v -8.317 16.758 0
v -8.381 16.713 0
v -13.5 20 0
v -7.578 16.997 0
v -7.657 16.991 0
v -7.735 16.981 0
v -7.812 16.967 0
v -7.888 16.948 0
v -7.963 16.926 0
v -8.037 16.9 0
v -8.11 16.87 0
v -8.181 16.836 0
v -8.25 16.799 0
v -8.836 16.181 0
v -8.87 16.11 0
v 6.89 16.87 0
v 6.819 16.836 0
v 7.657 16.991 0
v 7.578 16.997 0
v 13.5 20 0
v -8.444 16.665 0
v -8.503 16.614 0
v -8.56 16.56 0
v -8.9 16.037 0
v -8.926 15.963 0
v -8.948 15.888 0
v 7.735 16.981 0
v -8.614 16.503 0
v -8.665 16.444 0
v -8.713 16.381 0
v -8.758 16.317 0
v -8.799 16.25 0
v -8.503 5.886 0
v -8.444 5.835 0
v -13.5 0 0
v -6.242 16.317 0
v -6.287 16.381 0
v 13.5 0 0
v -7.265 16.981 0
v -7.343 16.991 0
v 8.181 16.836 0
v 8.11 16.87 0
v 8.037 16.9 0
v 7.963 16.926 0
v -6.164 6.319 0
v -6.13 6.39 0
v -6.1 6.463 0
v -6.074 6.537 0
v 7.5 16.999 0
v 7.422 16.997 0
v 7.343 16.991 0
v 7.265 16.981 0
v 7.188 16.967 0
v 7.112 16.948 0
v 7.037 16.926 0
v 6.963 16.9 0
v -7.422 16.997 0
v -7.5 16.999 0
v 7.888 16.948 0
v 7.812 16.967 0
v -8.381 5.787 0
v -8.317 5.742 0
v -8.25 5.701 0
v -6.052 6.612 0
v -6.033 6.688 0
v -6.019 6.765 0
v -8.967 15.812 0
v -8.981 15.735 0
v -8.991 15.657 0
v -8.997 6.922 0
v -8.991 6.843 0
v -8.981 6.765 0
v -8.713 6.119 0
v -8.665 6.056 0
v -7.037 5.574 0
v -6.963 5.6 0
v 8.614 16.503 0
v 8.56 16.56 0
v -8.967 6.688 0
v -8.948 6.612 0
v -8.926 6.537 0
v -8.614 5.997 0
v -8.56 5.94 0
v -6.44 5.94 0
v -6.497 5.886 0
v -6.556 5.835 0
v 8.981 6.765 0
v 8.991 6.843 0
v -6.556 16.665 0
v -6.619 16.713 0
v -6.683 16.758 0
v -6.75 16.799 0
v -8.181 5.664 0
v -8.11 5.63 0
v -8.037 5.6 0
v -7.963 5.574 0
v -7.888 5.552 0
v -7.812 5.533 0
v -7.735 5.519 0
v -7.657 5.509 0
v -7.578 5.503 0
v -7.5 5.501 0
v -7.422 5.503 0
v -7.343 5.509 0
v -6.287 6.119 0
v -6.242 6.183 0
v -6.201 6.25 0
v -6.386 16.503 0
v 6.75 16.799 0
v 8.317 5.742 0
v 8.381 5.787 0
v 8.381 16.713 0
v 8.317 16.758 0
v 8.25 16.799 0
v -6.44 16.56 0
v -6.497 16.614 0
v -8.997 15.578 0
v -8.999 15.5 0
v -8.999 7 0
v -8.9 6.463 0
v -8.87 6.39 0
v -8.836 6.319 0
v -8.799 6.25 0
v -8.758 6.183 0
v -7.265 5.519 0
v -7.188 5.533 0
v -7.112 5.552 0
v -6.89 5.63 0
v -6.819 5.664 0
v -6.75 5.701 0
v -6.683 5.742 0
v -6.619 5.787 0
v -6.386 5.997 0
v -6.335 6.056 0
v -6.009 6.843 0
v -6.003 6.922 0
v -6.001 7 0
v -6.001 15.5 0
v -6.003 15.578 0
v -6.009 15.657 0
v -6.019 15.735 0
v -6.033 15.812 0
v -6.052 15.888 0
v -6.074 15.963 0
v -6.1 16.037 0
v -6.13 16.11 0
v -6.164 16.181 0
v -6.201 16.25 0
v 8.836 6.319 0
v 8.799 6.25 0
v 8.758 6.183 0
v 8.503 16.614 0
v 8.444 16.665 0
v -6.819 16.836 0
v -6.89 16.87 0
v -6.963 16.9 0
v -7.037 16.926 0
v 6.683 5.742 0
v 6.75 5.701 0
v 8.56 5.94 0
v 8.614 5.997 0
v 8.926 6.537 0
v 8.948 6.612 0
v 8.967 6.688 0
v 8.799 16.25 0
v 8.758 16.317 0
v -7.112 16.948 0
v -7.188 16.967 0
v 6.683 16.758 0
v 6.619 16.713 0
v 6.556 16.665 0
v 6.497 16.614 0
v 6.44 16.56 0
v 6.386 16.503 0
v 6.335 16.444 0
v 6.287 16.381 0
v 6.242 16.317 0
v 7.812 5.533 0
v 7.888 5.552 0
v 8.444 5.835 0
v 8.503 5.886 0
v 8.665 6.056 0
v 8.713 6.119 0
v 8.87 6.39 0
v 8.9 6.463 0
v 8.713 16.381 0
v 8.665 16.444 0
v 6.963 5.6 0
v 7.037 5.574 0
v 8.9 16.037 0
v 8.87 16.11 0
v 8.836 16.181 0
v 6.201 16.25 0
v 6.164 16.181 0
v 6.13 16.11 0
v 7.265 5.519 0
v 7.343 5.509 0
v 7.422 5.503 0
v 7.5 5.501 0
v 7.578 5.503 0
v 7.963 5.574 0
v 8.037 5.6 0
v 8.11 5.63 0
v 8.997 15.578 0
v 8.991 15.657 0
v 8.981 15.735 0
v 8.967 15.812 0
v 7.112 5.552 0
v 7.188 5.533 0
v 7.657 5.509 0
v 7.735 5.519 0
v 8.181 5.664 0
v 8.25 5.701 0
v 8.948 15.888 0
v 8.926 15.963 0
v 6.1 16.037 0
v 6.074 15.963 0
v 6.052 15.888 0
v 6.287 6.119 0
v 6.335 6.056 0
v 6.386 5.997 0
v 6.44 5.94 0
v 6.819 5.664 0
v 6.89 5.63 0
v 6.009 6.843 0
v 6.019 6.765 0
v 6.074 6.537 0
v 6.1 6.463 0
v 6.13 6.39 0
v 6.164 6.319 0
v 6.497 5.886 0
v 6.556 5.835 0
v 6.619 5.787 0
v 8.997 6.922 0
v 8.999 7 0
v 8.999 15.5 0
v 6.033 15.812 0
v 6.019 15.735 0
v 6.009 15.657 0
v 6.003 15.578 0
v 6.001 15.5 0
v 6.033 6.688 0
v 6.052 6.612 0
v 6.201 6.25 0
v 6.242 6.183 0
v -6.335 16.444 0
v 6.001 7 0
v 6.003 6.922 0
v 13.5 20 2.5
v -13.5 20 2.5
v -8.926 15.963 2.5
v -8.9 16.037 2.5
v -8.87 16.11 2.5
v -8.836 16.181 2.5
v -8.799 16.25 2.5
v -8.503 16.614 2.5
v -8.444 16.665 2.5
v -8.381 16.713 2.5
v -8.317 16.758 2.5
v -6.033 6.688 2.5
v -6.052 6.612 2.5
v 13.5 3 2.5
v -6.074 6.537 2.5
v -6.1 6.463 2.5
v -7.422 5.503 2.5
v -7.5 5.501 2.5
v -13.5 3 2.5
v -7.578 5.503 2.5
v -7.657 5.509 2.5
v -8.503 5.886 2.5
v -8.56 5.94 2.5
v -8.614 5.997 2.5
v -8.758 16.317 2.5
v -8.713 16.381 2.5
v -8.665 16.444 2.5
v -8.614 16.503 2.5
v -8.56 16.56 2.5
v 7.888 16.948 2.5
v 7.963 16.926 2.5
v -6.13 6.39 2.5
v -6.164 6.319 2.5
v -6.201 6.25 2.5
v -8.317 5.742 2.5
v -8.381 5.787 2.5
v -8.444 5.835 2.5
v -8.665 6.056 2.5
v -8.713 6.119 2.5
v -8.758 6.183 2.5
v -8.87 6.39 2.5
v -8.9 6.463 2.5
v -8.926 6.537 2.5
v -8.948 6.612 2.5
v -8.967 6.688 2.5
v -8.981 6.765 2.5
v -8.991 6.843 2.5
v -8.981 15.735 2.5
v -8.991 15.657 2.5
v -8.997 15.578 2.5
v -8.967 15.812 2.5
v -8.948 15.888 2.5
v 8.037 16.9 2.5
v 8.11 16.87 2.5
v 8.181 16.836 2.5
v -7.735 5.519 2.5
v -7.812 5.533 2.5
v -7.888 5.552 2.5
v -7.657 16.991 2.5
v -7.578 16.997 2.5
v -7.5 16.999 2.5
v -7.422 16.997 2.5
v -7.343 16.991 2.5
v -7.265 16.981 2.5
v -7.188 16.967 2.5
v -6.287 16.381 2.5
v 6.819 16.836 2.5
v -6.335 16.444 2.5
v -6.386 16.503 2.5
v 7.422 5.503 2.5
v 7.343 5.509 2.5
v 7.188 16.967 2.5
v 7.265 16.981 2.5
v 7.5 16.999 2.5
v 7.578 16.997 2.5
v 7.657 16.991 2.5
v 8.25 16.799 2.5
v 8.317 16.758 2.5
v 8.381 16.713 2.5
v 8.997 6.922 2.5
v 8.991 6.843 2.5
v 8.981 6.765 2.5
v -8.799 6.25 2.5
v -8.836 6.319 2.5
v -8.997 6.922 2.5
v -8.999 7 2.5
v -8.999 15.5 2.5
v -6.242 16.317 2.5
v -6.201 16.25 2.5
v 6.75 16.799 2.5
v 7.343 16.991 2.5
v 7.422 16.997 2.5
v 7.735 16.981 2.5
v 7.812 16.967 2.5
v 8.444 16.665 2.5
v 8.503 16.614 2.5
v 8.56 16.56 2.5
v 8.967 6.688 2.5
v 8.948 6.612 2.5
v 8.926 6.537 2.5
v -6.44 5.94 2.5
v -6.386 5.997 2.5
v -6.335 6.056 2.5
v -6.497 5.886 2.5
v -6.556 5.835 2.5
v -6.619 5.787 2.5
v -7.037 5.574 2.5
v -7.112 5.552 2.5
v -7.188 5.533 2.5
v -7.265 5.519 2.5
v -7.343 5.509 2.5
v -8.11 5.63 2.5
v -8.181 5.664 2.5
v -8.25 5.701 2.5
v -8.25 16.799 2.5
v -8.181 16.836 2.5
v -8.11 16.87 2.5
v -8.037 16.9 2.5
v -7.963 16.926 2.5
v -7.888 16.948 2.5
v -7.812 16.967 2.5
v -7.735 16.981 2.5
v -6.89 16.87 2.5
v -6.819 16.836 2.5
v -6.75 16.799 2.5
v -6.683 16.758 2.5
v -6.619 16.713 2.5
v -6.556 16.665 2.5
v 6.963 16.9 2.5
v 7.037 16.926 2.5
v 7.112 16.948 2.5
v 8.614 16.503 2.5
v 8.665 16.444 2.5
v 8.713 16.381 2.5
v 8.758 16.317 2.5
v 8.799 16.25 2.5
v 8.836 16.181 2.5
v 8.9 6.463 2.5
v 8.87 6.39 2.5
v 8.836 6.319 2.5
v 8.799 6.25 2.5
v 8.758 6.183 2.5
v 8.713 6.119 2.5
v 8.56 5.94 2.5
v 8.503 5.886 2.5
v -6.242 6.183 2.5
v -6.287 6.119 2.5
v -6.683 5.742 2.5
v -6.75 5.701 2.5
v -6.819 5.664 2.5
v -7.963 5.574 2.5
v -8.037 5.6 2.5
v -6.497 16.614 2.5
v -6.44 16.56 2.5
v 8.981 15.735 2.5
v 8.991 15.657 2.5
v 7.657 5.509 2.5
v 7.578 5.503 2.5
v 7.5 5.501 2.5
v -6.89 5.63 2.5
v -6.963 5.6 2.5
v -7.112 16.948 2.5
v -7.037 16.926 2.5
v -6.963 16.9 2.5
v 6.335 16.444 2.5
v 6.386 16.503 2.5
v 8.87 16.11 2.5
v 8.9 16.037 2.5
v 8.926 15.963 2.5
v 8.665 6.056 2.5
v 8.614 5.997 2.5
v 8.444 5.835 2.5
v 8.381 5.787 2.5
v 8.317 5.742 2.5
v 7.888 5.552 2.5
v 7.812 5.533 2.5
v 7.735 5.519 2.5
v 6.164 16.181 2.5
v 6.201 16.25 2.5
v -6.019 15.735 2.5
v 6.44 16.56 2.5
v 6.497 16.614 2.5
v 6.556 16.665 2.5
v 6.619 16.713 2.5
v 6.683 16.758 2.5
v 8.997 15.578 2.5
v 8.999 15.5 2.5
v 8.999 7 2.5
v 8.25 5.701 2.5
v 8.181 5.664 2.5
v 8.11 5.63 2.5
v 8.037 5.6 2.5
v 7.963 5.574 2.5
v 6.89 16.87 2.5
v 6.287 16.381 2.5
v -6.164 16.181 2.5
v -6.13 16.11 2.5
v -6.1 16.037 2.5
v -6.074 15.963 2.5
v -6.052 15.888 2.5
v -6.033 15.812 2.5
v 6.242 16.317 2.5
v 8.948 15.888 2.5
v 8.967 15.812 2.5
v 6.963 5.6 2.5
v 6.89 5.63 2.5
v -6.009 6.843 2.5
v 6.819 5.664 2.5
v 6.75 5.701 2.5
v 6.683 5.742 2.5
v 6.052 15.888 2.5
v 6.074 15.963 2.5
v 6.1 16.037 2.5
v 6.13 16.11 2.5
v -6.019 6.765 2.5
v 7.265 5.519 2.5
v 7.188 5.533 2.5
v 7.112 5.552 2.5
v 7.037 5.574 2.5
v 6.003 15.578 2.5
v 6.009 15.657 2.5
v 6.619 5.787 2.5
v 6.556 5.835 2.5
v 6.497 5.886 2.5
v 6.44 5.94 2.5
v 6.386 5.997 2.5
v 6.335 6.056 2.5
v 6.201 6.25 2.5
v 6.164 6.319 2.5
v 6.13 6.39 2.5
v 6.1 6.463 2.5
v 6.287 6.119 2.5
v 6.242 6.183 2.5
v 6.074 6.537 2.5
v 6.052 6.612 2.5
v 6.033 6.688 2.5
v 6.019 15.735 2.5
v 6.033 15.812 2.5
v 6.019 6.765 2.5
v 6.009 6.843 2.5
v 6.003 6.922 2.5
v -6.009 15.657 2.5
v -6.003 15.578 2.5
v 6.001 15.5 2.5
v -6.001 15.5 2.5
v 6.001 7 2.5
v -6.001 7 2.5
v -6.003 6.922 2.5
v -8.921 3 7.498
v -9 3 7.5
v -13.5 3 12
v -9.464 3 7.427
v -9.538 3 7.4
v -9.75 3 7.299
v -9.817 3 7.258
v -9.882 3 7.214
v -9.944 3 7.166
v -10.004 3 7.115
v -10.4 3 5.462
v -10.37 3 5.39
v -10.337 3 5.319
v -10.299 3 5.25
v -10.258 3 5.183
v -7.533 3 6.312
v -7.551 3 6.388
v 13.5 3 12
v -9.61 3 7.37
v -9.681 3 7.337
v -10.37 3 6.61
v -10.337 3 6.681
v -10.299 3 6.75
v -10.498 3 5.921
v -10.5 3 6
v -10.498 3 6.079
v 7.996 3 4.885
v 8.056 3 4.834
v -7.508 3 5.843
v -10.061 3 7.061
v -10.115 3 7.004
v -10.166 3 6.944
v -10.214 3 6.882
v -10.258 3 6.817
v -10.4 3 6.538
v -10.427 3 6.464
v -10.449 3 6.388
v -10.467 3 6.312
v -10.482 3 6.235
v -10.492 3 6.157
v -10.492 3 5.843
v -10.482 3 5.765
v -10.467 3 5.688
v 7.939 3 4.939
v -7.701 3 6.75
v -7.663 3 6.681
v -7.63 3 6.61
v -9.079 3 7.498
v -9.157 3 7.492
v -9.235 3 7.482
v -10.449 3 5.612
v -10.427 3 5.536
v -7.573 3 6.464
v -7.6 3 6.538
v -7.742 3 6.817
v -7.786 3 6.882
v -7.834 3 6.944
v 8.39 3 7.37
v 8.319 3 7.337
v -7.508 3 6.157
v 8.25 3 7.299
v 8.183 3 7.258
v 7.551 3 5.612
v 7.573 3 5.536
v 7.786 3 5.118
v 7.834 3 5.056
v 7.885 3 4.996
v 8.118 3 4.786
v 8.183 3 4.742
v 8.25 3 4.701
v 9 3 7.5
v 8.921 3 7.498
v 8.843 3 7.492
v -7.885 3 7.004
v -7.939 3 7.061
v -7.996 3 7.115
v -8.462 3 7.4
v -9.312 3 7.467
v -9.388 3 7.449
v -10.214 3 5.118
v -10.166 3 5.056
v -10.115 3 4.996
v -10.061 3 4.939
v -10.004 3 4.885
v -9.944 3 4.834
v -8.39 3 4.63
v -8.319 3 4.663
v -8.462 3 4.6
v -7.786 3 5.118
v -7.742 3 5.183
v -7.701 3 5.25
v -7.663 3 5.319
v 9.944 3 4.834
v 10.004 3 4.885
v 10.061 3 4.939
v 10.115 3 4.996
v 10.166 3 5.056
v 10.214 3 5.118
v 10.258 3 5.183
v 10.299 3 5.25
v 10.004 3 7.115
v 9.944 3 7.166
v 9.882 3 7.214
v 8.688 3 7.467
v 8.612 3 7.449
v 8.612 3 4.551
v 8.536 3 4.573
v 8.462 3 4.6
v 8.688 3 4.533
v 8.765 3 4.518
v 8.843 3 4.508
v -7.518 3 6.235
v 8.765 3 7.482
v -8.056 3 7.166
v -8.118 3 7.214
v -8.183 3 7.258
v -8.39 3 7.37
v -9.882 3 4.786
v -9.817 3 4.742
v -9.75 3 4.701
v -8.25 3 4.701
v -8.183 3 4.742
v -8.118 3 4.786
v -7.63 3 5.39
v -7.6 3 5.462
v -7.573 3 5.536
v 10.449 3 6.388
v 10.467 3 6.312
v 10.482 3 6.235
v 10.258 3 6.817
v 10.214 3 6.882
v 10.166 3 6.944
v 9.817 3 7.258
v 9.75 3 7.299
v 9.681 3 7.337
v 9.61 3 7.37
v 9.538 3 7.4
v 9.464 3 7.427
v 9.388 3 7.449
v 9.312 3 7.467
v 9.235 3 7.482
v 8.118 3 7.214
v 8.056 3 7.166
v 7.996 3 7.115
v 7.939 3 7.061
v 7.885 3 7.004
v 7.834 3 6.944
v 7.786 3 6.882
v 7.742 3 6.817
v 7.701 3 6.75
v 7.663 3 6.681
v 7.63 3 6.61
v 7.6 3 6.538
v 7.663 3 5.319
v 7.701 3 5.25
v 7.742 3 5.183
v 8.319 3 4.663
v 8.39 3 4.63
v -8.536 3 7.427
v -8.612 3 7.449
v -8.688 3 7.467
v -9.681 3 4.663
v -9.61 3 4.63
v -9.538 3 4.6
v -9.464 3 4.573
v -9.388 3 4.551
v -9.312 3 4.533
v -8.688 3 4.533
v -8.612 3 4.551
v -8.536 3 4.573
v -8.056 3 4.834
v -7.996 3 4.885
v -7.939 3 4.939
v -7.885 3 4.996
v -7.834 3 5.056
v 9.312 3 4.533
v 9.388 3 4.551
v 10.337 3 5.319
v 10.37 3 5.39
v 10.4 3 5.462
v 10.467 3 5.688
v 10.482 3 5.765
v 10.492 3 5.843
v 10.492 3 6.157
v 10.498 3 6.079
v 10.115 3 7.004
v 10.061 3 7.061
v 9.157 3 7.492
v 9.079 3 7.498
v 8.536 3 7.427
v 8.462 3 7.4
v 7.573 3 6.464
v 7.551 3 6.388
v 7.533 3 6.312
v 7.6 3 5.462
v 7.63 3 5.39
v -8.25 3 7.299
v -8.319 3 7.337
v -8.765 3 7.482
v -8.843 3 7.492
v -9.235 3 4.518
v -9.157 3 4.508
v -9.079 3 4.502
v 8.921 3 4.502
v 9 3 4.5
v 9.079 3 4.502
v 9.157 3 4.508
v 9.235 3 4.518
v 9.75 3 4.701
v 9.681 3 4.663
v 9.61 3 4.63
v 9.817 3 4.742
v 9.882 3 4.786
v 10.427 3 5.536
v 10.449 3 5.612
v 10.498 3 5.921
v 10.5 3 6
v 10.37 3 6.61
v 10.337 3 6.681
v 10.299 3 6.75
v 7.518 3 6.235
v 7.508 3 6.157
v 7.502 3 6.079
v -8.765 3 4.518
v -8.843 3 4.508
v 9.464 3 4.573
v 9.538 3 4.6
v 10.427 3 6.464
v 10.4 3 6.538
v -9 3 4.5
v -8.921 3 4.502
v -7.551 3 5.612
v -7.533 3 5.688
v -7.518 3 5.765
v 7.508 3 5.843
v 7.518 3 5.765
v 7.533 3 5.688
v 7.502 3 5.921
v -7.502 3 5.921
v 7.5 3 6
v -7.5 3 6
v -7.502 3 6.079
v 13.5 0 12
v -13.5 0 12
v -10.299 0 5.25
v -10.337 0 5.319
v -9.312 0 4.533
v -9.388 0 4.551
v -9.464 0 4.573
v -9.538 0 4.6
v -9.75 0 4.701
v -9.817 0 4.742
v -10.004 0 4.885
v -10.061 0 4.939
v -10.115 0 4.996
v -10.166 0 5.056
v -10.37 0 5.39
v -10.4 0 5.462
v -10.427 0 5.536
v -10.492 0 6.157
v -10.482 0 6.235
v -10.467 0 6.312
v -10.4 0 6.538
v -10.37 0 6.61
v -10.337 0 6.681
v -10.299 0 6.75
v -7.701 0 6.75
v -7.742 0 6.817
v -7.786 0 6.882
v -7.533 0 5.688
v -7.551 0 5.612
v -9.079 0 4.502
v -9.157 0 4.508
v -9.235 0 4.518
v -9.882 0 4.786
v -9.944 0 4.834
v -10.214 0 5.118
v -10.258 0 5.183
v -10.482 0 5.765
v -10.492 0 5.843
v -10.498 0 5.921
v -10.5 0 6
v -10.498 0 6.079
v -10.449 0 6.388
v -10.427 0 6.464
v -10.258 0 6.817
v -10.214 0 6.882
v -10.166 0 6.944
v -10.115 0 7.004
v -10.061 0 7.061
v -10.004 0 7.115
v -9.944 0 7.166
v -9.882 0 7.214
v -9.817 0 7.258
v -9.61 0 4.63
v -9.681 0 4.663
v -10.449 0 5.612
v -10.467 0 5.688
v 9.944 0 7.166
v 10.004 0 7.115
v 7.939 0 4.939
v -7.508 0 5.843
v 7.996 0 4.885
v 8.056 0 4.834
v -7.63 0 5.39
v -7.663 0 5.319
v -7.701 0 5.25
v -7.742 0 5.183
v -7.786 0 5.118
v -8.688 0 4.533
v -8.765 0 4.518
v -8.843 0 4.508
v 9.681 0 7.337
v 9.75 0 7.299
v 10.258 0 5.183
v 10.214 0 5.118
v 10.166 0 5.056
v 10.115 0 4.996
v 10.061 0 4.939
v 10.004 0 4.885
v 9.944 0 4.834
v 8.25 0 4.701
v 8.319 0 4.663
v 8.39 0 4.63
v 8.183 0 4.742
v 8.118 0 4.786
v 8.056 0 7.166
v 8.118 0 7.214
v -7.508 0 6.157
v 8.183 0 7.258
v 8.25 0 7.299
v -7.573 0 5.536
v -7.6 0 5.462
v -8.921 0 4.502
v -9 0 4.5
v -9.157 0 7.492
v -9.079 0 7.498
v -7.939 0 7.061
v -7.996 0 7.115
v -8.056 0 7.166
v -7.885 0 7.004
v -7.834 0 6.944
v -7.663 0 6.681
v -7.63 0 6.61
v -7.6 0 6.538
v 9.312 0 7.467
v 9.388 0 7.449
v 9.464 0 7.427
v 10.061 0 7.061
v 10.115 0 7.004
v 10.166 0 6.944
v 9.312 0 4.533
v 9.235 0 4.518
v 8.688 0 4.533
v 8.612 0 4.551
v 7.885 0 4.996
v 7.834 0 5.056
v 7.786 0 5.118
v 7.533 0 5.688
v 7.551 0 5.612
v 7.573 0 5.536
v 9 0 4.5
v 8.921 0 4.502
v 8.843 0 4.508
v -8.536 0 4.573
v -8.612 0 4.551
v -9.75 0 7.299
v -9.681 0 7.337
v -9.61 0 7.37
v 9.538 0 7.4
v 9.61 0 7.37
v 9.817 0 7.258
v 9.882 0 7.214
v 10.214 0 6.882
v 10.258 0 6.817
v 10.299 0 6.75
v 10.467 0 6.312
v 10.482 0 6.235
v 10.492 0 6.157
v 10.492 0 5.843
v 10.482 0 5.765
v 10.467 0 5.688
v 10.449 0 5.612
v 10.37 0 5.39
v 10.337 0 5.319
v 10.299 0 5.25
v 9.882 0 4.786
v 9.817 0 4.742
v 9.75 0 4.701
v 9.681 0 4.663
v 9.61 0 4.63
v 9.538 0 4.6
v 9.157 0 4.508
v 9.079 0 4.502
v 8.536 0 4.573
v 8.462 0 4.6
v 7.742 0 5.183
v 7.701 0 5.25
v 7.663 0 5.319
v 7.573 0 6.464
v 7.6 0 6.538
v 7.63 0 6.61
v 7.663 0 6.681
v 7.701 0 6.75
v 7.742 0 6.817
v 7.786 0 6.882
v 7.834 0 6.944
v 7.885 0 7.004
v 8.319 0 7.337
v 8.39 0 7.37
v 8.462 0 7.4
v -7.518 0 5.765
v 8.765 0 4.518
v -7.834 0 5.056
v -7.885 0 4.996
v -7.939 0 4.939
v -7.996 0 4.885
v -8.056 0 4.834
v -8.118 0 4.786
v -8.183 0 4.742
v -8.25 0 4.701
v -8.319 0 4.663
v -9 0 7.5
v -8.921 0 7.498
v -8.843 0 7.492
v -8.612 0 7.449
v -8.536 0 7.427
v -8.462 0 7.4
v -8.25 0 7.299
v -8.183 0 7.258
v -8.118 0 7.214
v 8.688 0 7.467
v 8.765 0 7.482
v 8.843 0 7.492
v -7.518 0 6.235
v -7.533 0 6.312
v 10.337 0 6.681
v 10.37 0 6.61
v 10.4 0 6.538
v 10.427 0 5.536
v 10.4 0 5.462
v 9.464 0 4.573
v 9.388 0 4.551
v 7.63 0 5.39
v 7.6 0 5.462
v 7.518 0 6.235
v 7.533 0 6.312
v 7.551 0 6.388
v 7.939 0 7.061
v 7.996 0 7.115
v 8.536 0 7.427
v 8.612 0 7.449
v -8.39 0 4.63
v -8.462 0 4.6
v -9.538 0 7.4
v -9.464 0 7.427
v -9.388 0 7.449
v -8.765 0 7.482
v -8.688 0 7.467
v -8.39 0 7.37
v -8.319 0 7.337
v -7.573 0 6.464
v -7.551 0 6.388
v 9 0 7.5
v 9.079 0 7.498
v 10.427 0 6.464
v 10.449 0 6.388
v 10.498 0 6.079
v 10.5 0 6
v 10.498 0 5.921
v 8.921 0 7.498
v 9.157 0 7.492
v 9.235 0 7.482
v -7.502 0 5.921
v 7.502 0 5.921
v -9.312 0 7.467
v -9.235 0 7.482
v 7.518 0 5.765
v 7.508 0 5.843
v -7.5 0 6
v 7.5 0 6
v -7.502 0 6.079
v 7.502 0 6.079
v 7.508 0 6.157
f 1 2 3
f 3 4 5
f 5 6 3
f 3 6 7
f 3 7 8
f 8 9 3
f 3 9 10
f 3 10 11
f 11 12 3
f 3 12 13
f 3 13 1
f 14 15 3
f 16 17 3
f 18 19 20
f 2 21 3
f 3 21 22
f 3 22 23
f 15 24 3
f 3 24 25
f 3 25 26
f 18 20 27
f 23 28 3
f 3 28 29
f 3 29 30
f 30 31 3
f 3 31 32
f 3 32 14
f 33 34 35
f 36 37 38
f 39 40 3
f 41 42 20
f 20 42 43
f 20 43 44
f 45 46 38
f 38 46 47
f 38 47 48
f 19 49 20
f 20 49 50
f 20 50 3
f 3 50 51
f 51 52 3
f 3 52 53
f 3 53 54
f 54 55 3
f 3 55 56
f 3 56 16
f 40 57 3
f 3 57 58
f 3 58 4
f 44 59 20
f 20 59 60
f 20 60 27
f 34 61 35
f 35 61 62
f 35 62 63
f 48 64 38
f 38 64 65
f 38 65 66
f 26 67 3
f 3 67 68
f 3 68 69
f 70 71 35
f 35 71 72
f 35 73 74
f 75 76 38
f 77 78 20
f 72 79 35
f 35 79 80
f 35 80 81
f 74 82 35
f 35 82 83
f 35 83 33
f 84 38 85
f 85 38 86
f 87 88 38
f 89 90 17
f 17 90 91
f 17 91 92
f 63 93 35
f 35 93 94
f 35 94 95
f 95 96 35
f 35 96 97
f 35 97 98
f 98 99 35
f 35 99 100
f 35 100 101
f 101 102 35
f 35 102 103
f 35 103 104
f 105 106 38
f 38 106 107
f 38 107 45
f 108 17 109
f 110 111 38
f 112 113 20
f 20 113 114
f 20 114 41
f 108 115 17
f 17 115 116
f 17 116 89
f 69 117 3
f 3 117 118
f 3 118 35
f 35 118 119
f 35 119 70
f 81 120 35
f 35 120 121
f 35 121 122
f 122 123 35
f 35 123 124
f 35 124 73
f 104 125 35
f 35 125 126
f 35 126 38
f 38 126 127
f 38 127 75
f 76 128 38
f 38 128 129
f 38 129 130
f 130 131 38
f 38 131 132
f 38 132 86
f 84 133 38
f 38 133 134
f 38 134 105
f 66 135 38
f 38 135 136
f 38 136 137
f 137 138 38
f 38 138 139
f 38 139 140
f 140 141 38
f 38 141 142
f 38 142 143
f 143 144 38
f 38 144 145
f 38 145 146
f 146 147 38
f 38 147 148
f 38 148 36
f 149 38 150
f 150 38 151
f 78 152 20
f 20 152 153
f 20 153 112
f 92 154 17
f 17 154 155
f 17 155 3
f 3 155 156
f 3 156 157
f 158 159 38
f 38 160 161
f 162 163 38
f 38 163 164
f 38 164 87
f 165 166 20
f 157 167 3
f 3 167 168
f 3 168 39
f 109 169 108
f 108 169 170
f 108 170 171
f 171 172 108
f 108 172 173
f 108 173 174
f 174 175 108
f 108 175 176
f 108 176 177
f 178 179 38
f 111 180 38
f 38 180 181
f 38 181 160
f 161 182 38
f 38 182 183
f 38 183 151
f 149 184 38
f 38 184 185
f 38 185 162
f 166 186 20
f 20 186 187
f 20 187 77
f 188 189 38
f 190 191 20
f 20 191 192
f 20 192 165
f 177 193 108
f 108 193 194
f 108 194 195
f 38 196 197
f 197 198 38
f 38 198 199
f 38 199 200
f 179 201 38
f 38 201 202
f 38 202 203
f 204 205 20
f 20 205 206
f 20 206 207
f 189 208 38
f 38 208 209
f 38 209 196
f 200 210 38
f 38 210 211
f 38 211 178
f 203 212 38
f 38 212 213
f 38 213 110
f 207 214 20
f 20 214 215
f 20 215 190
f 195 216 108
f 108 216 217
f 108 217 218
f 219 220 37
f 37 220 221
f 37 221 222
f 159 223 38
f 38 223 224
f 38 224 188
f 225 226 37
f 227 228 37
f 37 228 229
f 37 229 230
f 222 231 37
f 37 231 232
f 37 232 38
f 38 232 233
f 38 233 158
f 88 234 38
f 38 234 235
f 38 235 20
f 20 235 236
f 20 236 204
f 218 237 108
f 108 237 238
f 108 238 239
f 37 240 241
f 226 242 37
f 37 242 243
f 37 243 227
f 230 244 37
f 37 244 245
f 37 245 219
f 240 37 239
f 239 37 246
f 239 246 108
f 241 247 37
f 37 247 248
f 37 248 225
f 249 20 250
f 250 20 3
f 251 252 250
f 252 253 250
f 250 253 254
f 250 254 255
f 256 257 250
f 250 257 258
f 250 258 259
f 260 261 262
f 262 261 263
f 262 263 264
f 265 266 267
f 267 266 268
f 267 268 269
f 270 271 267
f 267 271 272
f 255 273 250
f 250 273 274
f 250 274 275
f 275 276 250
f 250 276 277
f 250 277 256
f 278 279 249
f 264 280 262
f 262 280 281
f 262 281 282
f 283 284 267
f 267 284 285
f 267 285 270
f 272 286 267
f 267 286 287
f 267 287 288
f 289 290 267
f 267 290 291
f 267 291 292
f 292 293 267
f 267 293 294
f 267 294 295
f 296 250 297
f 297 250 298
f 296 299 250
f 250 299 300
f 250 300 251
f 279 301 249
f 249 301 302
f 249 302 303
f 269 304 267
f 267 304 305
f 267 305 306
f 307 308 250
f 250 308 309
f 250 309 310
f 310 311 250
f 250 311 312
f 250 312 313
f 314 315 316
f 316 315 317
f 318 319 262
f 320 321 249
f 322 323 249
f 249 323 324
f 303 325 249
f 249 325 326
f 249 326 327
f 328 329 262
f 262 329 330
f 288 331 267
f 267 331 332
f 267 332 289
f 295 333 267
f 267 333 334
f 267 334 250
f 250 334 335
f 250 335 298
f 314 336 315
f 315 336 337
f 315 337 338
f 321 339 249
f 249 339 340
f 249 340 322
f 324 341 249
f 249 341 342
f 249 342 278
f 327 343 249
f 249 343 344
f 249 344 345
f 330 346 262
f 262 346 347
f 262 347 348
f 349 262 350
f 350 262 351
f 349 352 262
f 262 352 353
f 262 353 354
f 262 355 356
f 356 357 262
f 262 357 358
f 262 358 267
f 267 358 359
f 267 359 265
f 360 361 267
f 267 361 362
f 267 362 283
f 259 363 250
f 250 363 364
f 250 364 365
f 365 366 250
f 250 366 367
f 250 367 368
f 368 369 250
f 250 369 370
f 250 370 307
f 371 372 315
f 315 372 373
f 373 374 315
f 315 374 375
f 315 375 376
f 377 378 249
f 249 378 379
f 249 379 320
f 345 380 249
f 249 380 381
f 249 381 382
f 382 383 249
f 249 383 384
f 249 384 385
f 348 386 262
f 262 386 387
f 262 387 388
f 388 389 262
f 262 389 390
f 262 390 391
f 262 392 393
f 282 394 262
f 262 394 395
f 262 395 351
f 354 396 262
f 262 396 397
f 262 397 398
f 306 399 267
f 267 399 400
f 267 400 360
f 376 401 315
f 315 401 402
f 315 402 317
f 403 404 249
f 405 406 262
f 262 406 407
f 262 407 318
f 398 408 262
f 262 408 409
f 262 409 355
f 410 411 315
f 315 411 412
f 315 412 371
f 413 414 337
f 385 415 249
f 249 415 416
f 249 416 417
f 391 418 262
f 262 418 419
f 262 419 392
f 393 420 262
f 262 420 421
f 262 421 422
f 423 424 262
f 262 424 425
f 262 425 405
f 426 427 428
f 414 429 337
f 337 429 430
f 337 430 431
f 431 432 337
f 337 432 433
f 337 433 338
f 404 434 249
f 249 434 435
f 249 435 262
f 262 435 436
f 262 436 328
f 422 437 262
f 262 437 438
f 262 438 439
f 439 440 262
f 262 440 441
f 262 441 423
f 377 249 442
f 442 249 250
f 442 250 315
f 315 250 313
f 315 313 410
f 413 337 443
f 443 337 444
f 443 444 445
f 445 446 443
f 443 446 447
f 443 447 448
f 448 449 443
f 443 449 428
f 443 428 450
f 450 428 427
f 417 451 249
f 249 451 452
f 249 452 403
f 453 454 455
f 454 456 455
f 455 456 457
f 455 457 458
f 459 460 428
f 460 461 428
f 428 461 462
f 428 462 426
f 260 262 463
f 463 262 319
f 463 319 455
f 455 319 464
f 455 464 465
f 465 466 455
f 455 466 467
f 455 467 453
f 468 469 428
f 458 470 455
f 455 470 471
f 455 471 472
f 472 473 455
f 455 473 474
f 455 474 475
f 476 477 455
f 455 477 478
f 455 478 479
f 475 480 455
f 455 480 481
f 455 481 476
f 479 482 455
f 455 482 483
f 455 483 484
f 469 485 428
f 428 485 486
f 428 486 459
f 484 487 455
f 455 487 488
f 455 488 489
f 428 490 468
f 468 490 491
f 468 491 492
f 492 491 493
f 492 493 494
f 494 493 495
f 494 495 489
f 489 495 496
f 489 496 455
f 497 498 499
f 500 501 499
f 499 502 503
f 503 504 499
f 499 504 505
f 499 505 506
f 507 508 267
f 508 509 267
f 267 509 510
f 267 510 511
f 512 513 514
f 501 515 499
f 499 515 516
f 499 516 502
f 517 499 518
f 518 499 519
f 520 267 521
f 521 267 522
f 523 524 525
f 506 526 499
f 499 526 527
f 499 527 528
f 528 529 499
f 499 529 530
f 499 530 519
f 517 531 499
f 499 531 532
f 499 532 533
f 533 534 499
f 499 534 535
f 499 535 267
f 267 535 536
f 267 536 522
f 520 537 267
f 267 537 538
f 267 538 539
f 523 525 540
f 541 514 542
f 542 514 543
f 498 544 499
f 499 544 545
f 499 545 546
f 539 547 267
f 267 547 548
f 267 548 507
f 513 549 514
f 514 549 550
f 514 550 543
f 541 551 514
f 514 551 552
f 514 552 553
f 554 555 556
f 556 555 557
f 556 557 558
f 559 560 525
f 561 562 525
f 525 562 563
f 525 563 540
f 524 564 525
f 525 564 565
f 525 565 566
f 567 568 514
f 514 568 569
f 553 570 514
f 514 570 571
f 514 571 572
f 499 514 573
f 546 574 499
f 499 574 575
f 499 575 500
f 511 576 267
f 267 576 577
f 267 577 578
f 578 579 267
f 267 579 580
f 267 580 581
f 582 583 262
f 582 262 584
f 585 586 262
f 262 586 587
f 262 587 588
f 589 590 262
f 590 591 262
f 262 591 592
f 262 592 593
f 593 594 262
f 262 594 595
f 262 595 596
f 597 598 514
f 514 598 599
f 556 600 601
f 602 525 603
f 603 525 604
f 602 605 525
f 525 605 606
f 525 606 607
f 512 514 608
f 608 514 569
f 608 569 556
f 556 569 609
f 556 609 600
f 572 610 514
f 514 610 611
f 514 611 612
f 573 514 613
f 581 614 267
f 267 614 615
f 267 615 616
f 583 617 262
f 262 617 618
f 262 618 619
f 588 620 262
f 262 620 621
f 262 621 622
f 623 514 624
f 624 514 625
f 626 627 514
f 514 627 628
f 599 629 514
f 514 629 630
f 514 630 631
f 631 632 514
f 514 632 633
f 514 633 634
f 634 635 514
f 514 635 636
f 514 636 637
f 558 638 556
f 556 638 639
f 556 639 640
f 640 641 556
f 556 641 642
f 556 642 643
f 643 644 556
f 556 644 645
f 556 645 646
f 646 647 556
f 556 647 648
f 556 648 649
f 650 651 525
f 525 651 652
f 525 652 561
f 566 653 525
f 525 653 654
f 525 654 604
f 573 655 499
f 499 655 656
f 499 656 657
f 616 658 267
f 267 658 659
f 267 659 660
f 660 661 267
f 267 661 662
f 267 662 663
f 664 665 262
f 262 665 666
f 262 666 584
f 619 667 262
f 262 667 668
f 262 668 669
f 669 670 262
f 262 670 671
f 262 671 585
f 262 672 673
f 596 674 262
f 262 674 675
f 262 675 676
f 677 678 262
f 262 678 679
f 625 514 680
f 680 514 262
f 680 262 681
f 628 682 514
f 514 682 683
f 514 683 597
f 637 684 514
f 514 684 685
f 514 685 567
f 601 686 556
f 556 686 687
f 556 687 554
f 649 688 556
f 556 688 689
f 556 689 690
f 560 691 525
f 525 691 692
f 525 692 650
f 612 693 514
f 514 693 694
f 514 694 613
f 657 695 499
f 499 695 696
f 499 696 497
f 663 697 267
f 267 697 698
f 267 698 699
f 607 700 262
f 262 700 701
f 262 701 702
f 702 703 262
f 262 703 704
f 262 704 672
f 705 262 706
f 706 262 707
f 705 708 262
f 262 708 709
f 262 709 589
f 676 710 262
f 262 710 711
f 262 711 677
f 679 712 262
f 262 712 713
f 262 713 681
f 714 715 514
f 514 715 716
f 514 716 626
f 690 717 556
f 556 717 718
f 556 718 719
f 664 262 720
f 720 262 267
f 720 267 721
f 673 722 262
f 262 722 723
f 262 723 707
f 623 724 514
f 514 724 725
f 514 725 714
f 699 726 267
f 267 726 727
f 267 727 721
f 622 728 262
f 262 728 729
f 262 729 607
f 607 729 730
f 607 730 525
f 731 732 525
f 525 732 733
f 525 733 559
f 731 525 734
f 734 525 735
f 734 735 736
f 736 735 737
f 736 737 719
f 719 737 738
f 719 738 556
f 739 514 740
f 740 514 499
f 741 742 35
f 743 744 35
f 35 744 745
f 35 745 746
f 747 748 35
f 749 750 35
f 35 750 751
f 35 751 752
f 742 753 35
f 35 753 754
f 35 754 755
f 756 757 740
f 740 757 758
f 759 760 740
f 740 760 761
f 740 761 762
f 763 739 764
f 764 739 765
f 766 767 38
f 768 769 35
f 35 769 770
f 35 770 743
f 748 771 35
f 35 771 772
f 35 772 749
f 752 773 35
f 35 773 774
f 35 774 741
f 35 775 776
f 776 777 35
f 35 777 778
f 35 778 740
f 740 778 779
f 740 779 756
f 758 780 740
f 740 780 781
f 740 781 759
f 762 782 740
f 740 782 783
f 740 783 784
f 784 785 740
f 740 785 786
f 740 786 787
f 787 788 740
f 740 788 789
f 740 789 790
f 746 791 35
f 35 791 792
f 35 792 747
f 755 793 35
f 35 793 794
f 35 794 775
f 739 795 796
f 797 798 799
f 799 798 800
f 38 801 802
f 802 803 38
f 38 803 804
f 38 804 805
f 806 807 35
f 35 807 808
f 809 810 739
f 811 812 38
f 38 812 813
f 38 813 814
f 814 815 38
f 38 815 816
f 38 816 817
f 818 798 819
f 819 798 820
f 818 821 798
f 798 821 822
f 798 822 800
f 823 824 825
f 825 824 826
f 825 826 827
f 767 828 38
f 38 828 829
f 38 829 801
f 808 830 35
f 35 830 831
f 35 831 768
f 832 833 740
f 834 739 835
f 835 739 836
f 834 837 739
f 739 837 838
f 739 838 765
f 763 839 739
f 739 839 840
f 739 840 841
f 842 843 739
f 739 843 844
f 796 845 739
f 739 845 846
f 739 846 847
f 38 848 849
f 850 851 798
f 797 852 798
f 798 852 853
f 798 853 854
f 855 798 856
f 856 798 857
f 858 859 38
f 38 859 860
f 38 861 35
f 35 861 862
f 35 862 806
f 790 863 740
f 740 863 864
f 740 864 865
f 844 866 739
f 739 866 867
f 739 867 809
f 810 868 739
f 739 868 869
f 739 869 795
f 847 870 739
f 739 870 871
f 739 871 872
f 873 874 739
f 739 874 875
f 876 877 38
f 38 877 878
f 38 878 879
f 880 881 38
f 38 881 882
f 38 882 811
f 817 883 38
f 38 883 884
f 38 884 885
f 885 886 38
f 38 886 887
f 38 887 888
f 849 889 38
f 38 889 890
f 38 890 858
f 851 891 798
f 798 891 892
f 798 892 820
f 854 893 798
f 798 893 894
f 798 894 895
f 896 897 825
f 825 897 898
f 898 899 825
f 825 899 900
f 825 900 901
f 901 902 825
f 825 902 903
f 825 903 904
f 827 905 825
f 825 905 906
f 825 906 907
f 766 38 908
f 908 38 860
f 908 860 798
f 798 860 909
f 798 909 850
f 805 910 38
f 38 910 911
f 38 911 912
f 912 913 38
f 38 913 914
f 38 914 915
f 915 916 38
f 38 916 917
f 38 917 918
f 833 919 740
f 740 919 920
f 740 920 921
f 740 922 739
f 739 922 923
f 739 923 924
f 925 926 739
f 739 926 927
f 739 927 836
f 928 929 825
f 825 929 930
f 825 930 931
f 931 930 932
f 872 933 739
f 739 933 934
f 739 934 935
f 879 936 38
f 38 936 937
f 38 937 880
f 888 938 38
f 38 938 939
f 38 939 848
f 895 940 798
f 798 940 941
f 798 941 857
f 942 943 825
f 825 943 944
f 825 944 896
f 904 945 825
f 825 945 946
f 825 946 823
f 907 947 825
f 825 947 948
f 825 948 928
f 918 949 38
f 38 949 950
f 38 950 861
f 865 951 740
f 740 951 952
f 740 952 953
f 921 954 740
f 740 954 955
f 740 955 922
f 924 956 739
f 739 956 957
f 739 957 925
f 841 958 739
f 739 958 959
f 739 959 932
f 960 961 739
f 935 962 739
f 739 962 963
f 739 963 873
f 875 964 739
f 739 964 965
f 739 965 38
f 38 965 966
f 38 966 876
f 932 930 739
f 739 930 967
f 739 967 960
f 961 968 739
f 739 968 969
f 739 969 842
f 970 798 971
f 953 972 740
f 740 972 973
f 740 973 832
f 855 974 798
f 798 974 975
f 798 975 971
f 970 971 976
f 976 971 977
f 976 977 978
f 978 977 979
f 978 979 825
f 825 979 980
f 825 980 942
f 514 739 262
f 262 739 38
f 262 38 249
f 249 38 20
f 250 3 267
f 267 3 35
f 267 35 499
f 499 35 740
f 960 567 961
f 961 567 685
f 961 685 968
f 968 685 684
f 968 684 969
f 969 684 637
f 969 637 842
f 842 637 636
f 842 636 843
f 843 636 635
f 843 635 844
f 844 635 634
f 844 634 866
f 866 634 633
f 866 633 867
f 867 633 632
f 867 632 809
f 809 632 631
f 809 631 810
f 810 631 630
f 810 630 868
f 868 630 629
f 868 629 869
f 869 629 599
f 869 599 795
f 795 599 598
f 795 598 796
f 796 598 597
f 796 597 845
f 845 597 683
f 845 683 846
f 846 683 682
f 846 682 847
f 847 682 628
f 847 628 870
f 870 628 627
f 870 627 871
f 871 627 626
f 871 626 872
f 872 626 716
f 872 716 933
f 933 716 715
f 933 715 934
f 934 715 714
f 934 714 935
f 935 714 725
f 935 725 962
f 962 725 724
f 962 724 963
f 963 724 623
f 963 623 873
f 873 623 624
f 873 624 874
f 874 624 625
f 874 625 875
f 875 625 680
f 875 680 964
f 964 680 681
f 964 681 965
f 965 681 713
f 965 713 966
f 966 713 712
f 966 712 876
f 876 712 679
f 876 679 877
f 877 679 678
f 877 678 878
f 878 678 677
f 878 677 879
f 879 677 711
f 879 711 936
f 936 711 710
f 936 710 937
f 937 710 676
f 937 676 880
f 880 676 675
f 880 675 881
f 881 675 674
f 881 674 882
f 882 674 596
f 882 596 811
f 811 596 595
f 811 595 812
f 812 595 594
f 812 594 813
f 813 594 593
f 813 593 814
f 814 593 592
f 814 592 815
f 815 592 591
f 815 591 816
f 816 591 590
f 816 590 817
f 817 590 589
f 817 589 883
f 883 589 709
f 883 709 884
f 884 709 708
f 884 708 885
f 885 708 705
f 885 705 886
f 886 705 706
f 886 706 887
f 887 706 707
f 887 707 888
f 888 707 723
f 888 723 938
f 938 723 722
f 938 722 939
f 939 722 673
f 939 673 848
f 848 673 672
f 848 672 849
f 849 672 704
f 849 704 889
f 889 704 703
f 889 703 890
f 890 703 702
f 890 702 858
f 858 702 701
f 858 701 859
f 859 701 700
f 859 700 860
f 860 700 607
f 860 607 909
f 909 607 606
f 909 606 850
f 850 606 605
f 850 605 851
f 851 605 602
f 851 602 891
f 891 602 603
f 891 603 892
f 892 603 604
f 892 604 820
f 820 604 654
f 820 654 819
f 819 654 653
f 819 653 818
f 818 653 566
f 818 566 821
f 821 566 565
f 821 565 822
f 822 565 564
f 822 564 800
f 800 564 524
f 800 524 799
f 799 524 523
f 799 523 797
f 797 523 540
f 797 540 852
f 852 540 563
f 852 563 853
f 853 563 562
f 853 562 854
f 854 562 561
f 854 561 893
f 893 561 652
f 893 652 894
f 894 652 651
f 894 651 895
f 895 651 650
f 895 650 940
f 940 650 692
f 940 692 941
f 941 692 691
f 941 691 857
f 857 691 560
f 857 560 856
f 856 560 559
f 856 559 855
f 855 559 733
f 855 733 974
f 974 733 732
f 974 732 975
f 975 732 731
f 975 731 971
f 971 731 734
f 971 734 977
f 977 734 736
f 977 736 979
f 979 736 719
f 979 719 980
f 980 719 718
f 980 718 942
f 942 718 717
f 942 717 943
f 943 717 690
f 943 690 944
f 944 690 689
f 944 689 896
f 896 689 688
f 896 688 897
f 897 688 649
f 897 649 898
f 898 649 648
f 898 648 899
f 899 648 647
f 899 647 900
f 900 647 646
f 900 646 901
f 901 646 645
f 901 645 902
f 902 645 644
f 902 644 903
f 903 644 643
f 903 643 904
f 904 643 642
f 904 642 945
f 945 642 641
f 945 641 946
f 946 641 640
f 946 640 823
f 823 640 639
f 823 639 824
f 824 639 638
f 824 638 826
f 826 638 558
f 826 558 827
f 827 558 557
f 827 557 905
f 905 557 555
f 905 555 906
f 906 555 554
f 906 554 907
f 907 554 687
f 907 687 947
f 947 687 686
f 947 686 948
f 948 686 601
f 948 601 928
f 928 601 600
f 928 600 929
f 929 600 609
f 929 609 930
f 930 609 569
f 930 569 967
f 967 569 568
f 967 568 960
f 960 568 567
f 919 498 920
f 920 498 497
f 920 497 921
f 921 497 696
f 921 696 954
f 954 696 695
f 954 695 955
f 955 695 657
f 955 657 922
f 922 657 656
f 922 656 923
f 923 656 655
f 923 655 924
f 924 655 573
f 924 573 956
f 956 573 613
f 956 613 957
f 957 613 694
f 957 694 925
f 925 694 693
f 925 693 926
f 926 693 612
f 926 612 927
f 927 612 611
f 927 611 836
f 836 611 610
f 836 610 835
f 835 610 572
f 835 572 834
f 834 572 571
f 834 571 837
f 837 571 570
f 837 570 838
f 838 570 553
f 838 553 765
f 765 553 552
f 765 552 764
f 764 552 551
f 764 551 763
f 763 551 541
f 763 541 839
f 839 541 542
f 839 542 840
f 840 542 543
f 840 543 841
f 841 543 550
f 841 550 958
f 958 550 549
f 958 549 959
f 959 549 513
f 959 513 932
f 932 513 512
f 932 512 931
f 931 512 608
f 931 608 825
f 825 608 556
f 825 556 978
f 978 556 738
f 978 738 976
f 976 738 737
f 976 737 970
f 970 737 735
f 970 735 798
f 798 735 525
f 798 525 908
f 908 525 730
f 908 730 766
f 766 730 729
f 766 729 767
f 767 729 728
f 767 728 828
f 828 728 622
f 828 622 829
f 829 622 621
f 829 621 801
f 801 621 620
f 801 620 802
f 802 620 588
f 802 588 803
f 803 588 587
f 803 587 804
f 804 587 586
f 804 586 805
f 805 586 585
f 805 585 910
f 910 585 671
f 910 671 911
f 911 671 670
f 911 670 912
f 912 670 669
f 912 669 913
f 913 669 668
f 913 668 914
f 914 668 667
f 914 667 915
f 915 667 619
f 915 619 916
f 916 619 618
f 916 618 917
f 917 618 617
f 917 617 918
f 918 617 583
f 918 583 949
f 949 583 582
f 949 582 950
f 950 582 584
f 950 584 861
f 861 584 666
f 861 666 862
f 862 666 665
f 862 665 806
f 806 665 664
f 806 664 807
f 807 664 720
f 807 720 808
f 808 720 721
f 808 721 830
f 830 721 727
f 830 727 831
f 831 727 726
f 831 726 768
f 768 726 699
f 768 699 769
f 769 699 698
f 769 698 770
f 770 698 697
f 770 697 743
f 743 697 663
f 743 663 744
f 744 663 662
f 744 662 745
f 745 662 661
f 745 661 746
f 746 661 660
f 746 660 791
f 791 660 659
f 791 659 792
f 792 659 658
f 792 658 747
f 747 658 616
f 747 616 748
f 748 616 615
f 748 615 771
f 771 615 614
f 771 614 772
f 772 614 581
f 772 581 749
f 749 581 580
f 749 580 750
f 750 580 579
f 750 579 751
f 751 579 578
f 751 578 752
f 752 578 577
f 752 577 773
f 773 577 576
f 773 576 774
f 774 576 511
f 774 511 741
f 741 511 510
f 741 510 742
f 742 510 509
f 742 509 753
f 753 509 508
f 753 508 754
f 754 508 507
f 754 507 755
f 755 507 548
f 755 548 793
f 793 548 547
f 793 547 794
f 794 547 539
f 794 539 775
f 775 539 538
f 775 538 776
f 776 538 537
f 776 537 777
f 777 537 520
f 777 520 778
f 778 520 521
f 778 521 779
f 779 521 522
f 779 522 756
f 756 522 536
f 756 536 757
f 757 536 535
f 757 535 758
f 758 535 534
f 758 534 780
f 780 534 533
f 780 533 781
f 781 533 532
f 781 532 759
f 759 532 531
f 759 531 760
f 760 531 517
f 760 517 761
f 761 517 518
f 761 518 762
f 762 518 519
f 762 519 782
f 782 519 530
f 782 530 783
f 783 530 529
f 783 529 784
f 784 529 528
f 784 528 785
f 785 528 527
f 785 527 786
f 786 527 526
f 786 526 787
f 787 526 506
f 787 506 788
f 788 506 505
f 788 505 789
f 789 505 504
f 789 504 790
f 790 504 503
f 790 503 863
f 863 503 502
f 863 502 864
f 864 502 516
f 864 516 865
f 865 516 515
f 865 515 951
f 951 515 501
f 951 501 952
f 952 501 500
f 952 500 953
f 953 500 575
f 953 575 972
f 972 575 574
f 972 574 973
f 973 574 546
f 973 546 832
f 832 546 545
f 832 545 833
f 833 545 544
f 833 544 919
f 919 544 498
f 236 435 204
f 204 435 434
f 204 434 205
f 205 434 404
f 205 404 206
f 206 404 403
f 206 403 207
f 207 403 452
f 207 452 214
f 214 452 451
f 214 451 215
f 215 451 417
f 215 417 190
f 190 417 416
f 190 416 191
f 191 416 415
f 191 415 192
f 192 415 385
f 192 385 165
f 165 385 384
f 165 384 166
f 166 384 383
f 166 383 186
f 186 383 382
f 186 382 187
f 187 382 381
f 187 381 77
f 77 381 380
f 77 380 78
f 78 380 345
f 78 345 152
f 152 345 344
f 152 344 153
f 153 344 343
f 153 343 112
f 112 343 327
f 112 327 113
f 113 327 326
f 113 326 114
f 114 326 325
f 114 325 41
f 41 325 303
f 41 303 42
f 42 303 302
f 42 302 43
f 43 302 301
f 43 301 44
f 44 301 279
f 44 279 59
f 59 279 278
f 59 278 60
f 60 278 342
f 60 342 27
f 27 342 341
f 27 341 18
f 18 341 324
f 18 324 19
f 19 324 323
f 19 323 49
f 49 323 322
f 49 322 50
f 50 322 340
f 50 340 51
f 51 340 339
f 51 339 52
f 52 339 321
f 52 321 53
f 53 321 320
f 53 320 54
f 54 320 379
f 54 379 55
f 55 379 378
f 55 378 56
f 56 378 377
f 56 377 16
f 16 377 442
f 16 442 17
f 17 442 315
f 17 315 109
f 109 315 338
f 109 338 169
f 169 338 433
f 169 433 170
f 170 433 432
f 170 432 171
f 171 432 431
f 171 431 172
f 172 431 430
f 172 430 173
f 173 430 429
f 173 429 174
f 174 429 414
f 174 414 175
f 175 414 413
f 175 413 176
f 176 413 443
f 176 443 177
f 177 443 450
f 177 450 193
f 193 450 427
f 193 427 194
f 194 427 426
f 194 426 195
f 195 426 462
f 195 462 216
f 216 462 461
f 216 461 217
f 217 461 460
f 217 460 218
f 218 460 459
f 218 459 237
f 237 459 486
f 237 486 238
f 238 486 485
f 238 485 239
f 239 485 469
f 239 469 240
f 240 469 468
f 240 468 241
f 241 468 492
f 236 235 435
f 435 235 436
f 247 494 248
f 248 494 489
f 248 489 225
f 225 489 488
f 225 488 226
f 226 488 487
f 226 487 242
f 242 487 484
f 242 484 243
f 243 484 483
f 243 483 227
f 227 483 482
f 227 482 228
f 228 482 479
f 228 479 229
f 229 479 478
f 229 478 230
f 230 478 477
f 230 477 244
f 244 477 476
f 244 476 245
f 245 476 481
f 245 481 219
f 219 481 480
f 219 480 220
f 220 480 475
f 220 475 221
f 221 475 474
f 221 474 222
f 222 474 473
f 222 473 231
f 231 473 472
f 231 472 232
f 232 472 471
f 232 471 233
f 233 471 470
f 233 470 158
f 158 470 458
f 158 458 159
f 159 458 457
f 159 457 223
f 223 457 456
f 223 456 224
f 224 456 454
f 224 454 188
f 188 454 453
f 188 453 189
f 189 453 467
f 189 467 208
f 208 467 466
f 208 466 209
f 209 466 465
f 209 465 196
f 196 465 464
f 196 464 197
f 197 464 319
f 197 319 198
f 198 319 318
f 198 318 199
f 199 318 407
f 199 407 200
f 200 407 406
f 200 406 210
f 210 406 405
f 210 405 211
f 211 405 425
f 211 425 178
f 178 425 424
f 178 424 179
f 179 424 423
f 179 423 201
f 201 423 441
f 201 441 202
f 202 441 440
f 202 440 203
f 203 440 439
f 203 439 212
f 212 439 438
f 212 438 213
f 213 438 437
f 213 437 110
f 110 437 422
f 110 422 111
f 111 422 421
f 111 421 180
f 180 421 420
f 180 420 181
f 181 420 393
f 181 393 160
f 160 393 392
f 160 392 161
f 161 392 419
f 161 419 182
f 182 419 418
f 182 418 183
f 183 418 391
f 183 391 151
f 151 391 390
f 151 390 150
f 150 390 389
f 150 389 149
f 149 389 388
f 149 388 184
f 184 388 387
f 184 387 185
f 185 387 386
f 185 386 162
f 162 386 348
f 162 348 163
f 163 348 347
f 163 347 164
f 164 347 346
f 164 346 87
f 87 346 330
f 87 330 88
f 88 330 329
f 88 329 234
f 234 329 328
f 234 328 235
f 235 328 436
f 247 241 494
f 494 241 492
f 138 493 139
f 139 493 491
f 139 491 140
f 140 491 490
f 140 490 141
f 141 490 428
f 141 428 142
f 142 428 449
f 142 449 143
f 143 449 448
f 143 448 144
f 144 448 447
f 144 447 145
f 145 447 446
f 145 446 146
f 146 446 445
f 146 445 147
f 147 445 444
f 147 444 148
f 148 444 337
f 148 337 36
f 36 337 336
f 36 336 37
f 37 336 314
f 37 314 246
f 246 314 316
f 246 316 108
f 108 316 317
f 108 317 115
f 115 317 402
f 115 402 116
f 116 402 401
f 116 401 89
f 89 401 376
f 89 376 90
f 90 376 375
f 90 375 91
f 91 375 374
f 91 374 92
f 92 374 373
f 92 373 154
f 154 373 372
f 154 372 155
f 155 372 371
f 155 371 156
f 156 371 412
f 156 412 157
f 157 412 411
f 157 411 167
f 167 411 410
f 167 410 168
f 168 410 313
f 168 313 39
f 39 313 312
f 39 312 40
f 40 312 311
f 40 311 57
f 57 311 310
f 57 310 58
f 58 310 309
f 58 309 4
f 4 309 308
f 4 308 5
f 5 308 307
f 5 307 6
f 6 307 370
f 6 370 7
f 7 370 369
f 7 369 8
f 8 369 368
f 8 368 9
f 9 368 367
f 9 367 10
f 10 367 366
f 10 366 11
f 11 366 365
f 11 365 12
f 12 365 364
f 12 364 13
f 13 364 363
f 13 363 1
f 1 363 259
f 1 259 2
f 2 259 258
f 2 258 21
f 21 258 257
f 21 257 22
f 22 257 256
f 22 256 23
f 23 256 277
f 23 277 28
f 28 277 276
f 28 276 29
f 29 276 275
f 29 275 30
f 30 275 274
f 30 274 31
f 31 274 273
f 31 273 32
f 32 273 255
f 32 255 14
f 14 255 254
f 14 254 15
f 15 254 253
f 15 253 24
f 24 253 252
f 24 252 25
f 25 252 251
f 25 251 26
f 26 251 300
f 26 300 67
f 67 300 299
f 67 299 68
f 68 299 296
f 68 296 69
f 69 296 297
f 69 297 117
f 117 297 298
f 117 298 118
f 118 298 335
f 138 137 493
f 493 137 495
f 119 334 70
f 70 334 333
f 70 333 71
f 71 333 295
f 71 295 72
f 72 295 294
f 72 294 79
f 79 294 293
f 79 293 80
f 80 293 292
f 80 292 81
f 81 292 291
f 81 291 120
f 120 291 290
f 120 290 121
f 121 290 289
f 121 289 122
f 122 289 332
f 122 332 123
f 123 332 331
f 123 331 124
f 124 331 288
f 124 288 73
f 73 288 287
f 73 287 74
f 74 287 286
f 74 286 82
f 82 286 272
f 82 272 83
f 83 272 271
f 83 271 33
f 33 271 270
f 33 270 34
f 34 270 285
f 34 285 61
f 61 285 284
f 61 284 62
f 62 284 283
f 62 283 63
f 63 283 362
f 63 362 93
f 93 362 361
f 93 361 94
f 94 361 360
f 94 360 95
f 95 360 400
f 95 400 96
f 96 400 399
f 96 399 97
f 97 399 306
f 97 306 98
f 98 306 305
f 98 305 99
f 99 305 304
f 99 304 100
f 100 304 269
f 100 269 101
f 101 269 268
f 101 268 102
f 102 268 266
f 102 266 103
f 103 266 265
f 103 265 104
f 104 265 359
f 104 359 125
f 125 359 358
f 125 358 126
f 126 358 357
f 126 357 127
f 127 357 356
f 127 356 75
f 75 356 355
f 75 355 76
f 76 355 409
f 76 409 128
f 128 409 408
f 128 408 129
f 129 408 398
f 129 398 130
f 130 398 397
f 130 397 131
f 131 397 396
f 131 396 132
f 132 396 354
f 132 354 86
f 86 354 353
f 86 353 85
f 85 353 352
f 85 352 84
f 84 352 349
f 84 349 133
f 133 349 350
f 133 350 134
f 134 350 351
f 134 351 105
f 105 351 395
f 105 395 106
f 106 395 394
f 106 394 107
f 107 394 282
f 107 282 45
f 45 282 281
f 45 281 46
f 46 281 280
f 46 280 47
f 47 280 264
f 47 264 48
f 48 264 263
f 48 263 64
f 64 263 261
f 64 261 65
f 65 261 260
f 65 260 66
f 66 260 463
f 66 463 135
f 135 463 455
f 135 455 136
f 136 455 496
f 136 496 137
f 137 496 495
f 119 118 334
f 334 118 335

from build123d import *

# Parameters (mm, degrees)
BOSS_EXTRUDE1_DEPTH = 13.5
SKETCH2_R           = 1.5
CUT_EXTRUDE1_DEPTH  = 20
CUT_EXTRUDE2_DEPTH  = 3.5


with BuildPart() as part:
    # Sketch1 → Boss-Extrude1 (new body, symmetric)
    with BuildSketch(Plane(origin=(0, 0, 0), x_dir=(0, 0, -1), z_dir=(1, 0, 0))):
        Polygon((0, 0), (-12, 0), (-12, 3), (-2.5, 3), (-2.5, 20), (0, 20), align=None)
    extrude(amount=BOSS_EXTRUDE1_DEPTH, both=True)

    # Sketch2 → Cut-Extrude1 (cut)
    with BuildSketch(Plane(origin=(0, 3, 0), x_dir=(1, 0, 0), z_dir=(0, 1, 0))):
        with Locations((-9, -6)):
            Circle(SKETCH2_R)
        with Locations((9, -6)):
            Circle(SKETCH2_R)
    extrude(amount=-CUT_EXTRUDE1_DEPTH, mode=Mode.SUBTRACT)

    # Sketch3 → Cut-Extrude2 (cut, through all)
    with BuildSketch(Plane.XY.offset(2.5)):
        with BuildLine():
            Line((-6.000505089, 15.5), (-6.000505089, 7))
            ThreePointArc((-6.000505089, 7), (-7.5, 5.500505089), (-8.999494911, 7))
            Line((-8.999494911, 7), (-8.999494911, 15.5))
            ThreePointArc((-8.999494911, 15.5), (-7.5, 16.999494911), (-6.000505089, 15.5))
        make_face()
        with BuildLine():
            Line((8.999494911, 15.5), (8.999494911, 7))
            ThreePointArc((8.999494911, 7), (7.5, 5.500505089), (6.000505089, 7))
            Line((6.000505089, 7), (6.000505089, 15.5))
            ThreePointArc((6.000505089, 15.5), (7.5, 16.999494911), (8.999494911, 15.5))
        make_face()
    extrude(amount=-CUT_EXTRUDE2_DEPTH, mode=Mode.SUBTRACT)


solid = part.part
